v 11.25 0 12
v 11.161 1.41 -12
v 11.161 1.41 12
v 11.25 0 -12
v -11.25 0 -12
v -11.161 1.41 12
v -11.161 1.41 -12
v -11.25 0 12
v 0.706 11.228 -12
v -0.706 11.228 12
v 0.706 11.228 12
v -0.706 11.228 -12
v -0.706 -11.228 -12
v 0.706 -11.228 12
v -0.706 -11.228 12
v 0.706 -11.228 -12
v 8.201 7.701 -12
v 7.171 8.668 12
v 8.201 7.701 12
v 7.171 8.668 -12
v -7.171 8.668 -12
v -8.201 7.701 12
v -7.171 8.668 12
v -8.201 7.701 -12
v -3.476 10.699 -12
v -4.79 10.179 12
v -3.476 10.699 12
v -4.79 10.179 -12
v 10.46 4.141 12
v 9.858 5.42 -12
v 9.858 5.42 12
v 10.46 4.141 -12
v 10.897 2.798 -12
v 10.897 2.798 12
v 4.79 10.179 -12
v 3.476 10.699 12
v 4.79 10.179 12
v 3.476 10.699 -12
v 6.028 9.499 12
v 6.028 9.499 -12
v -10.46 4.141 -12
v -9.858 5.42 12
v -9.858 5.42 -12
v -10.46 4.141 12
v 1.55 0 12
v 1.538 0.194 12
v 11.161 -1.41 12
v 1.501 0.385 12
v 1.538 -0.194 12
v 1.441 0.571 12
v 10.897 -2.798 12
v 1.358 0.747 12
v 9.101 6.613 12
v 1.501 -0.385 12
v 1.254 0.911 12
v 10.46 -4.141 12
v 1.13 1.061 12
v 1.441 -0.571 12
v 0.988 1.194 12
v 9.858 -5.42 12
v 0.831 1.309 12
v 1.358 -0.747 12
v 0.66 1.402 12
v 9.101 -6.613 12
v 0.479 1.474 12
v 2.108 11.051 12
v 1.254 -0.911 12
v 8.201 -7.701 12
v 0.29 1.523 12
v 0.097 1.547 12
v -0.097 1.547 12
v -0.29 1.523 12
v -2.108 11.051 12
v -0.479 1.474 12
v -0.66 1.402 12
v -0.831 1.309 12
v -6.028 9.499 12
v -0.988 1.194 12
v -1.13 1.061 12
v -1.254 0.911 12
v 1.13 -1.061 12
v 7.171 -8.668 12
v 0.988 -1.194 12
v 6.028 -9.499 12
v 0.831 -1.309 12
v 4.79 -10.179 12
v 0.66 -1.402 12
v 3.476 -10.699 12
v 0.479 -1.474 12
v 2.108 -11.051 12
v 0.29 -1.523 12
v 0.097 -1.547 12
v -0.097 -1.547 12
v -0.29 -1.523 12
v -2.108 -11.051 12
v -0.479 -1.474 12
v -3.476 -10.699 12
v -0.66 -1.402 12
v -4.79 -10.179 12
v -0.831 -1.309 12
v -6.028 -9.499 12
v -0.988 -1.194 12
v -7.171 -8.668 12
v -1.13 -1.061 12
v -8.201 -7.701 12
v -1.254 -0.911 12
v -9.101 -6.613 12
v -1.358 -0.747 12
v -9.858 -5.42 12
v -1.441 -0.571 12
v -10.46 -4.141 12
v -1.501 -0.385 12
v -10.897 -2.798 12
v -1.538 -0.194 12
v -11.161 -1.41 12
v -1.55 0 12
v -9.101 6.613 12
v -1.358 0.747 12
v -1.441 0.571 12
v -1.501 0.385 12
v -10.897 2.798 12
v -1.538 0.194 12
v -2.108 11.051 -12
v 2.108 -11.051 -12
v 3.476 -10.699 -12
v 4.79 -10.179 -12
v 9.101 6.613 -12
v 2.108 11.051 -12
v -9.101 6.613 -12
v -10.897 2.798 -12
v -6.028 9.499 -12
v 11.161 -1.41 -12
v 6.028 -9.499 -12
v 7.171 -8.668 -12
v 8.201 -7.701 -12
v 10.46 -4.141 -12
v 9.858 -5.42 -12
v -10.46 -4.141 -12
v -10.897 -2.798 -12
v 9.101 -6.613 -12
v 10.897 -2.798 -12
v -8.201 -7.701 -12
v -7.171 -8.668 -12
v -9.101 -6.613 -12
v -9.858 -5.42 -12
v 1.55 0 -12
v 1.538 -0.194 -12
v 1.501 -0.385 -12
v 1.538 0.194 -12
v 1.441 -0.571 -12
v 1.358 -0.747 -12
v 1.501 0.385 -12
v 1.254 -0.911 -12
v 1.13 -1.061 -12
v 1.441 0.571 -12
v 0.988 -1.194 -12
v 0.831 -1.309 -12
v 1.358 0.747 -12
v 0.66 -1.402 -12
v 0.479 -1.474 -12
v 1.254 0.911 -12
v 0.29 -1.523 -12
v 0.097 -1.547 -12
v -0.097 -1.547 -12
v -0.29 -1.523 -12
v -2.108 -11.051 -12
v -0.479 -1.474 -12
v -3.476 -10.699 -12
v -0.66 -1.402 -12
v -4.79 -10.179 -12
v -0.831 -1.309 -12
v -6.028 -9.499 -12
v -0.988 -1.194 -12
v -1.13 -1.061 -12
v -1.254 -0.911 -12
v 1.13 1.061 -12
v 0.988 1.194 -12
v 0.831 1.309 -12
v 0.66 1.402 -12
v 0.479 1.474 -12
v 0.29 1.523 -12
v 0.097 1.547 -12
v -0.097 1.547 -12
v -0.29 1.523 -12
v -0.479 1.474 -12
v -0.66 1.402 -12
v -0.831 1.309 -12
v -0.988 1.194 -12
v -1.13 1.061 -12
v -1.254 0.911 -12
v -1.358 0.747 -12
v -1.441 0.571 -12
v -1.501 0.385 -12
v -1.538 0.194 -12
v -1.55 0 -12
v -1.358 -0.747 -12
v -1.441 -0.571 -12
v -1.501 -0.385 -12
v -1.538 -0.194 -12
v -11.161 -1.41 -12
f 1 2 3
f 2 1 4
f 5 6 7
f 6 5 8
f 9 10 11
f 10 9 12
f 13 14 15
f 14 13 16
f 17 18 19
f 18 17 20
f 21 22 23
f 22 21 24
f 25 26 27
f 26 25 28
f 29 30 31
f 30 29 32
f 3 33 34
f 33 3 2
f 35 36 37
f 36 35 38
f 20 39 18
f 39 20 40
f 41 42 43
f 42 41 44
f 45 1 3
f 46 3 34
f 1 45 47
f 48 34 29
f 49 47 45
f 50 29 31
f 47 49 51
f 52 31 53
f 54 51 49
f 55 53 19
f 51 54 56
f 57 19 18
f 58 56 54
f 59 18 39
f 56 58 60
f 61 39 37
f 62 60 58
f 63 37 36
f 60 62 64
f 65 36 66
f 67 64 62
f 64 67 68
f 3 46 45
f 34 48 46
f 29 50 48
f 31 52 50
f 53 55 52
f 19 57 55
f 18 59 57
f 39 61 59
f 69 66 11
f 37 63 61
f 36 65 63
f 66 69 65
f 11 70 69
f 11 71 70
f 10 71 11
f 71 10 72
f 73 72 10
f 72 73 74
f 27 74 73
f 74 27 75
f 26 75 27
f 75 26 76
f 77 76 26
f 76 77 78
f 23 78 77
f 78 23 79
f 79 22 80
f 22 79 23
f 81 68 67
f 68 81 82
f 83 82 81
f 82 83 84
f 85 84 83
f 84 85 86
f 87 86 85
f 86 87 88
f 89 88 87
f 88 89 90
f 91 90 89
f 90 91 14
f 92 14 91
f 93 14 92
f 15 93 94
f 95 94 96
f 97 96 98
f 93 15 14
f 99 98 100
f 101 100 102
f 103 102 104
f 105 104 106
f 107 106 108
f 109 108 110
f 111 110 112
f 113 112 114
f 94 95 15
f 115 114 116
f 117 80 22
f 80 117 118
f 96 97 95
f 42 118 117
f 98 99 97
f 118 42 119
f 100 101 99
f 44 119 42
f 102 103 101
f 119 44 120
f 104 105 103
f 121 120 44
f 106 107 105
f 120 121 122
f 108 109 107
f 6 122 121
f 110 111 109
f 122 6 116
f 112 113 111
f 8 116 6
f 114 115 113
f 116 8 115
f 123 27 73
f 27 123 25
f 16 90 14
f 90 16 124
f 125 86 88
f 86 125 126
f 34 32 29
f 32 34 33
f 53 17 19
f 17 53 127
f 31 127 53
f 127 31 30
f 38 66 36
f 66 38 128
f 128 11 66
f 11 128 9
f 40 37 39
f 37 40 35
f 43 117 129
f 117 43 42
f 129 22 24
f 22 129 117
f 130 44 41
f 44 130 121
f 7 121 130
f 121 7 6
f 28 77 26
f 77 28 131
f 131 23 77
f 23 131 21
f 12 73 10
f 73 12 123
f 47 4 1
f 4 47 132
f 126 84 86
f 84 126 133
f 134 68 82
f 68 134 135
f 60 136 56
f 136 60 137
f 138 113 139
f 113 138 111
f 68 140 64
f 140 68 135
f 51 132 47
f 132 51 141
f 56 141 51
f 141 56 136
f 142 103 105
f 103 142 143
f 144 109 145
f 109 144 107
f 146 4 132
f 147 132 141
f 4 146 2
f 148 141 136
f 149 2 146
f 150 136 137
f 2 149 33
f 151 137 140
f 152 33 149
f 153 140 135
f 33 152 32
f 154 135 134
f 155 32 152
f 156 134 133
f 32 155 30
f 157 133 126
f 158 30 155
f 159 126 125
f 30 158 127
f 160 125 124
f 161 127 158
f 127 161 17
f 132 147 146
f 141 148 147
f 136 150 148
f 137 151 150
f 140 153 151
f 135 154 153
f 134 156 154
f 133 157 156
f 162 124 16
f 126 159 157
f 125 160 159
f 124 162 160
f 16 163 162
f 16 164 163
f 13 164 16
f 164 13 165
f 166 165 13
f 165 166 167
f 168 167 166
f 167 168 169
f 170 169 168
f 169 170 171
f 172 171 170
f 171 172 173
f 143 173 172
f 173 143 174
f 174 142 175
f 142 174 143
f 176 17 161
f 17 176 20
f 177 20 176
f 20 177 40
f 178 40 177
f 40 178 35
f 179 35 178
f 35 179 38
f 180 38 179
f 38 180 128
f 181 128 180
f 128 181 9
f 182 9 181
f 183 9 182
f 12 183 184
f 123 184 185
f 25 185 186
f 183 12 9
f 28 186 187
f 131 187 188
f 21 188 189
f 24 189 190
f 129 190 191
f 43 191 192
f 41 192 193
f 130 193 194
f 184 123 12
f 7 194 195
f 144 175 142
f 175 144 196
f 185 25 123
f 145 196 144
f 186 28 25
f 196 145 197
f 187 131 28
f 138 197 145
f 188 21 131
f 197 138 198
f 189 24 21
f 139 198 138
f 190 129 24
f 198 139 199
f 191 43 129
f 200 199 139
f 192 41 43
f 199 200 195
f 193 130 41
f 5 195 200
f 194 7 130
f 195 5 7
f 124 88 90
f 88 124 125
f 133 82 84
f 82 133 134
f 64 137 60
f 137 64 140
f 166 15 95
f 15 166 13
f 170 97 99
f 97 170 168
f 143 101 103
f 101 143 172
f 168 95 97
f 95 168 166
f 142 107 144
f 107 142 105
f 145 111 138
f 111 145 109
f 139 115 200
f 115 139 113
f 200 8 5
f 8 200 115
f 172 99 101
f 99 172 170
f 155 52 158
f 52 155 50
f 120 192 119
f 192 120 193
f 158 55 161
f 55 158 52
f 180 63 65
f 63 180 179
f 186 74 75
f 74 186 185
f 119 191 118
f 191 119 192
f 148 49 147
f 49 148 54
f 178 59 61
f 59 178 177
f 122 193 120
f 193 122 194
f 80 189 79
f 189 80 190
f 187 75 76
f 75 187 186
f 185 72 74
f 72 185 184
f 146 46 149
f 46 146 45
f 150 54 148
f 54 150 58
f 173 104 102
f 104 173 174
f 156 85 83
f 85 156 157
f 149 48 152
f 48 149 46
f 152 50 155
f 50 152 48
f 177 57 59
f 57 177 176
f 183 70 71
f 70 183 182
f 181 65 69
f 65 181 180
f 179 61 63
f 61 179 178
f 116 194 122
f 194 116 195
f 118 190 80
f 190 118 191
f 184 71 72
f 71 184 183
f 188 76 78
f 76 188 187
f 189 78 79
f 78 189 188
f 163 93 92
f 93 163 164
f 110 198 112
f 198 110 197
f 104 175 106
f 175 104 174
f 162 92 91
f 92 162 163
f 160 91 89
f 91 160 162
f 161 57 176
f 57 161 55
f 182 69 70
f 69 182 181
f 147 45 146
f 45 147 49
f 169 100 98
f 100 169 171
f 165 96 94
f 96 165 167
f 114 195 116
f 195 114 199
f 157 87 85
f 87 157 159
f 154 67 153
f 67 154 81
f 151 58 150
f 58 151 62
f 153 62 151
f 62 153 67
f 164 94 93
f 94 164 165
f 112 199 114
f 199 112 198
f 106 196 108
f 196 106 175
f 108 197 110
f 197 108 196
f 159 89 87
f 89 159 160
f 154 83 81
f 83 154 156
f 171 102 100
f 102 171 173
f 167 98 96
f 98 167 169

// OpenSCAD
$fn = 50;


difference() {
	union() {
		translate(v = [0, 0, -12.0000000000]) {
			cylinder(h = 24, r = 11.2500000000);
		}
	}
	union() {
		translate(v = [0, 0, -100.0000000000]) {
			cylinder(h = 200, r = 1.5500000000);
		}
	}
}
